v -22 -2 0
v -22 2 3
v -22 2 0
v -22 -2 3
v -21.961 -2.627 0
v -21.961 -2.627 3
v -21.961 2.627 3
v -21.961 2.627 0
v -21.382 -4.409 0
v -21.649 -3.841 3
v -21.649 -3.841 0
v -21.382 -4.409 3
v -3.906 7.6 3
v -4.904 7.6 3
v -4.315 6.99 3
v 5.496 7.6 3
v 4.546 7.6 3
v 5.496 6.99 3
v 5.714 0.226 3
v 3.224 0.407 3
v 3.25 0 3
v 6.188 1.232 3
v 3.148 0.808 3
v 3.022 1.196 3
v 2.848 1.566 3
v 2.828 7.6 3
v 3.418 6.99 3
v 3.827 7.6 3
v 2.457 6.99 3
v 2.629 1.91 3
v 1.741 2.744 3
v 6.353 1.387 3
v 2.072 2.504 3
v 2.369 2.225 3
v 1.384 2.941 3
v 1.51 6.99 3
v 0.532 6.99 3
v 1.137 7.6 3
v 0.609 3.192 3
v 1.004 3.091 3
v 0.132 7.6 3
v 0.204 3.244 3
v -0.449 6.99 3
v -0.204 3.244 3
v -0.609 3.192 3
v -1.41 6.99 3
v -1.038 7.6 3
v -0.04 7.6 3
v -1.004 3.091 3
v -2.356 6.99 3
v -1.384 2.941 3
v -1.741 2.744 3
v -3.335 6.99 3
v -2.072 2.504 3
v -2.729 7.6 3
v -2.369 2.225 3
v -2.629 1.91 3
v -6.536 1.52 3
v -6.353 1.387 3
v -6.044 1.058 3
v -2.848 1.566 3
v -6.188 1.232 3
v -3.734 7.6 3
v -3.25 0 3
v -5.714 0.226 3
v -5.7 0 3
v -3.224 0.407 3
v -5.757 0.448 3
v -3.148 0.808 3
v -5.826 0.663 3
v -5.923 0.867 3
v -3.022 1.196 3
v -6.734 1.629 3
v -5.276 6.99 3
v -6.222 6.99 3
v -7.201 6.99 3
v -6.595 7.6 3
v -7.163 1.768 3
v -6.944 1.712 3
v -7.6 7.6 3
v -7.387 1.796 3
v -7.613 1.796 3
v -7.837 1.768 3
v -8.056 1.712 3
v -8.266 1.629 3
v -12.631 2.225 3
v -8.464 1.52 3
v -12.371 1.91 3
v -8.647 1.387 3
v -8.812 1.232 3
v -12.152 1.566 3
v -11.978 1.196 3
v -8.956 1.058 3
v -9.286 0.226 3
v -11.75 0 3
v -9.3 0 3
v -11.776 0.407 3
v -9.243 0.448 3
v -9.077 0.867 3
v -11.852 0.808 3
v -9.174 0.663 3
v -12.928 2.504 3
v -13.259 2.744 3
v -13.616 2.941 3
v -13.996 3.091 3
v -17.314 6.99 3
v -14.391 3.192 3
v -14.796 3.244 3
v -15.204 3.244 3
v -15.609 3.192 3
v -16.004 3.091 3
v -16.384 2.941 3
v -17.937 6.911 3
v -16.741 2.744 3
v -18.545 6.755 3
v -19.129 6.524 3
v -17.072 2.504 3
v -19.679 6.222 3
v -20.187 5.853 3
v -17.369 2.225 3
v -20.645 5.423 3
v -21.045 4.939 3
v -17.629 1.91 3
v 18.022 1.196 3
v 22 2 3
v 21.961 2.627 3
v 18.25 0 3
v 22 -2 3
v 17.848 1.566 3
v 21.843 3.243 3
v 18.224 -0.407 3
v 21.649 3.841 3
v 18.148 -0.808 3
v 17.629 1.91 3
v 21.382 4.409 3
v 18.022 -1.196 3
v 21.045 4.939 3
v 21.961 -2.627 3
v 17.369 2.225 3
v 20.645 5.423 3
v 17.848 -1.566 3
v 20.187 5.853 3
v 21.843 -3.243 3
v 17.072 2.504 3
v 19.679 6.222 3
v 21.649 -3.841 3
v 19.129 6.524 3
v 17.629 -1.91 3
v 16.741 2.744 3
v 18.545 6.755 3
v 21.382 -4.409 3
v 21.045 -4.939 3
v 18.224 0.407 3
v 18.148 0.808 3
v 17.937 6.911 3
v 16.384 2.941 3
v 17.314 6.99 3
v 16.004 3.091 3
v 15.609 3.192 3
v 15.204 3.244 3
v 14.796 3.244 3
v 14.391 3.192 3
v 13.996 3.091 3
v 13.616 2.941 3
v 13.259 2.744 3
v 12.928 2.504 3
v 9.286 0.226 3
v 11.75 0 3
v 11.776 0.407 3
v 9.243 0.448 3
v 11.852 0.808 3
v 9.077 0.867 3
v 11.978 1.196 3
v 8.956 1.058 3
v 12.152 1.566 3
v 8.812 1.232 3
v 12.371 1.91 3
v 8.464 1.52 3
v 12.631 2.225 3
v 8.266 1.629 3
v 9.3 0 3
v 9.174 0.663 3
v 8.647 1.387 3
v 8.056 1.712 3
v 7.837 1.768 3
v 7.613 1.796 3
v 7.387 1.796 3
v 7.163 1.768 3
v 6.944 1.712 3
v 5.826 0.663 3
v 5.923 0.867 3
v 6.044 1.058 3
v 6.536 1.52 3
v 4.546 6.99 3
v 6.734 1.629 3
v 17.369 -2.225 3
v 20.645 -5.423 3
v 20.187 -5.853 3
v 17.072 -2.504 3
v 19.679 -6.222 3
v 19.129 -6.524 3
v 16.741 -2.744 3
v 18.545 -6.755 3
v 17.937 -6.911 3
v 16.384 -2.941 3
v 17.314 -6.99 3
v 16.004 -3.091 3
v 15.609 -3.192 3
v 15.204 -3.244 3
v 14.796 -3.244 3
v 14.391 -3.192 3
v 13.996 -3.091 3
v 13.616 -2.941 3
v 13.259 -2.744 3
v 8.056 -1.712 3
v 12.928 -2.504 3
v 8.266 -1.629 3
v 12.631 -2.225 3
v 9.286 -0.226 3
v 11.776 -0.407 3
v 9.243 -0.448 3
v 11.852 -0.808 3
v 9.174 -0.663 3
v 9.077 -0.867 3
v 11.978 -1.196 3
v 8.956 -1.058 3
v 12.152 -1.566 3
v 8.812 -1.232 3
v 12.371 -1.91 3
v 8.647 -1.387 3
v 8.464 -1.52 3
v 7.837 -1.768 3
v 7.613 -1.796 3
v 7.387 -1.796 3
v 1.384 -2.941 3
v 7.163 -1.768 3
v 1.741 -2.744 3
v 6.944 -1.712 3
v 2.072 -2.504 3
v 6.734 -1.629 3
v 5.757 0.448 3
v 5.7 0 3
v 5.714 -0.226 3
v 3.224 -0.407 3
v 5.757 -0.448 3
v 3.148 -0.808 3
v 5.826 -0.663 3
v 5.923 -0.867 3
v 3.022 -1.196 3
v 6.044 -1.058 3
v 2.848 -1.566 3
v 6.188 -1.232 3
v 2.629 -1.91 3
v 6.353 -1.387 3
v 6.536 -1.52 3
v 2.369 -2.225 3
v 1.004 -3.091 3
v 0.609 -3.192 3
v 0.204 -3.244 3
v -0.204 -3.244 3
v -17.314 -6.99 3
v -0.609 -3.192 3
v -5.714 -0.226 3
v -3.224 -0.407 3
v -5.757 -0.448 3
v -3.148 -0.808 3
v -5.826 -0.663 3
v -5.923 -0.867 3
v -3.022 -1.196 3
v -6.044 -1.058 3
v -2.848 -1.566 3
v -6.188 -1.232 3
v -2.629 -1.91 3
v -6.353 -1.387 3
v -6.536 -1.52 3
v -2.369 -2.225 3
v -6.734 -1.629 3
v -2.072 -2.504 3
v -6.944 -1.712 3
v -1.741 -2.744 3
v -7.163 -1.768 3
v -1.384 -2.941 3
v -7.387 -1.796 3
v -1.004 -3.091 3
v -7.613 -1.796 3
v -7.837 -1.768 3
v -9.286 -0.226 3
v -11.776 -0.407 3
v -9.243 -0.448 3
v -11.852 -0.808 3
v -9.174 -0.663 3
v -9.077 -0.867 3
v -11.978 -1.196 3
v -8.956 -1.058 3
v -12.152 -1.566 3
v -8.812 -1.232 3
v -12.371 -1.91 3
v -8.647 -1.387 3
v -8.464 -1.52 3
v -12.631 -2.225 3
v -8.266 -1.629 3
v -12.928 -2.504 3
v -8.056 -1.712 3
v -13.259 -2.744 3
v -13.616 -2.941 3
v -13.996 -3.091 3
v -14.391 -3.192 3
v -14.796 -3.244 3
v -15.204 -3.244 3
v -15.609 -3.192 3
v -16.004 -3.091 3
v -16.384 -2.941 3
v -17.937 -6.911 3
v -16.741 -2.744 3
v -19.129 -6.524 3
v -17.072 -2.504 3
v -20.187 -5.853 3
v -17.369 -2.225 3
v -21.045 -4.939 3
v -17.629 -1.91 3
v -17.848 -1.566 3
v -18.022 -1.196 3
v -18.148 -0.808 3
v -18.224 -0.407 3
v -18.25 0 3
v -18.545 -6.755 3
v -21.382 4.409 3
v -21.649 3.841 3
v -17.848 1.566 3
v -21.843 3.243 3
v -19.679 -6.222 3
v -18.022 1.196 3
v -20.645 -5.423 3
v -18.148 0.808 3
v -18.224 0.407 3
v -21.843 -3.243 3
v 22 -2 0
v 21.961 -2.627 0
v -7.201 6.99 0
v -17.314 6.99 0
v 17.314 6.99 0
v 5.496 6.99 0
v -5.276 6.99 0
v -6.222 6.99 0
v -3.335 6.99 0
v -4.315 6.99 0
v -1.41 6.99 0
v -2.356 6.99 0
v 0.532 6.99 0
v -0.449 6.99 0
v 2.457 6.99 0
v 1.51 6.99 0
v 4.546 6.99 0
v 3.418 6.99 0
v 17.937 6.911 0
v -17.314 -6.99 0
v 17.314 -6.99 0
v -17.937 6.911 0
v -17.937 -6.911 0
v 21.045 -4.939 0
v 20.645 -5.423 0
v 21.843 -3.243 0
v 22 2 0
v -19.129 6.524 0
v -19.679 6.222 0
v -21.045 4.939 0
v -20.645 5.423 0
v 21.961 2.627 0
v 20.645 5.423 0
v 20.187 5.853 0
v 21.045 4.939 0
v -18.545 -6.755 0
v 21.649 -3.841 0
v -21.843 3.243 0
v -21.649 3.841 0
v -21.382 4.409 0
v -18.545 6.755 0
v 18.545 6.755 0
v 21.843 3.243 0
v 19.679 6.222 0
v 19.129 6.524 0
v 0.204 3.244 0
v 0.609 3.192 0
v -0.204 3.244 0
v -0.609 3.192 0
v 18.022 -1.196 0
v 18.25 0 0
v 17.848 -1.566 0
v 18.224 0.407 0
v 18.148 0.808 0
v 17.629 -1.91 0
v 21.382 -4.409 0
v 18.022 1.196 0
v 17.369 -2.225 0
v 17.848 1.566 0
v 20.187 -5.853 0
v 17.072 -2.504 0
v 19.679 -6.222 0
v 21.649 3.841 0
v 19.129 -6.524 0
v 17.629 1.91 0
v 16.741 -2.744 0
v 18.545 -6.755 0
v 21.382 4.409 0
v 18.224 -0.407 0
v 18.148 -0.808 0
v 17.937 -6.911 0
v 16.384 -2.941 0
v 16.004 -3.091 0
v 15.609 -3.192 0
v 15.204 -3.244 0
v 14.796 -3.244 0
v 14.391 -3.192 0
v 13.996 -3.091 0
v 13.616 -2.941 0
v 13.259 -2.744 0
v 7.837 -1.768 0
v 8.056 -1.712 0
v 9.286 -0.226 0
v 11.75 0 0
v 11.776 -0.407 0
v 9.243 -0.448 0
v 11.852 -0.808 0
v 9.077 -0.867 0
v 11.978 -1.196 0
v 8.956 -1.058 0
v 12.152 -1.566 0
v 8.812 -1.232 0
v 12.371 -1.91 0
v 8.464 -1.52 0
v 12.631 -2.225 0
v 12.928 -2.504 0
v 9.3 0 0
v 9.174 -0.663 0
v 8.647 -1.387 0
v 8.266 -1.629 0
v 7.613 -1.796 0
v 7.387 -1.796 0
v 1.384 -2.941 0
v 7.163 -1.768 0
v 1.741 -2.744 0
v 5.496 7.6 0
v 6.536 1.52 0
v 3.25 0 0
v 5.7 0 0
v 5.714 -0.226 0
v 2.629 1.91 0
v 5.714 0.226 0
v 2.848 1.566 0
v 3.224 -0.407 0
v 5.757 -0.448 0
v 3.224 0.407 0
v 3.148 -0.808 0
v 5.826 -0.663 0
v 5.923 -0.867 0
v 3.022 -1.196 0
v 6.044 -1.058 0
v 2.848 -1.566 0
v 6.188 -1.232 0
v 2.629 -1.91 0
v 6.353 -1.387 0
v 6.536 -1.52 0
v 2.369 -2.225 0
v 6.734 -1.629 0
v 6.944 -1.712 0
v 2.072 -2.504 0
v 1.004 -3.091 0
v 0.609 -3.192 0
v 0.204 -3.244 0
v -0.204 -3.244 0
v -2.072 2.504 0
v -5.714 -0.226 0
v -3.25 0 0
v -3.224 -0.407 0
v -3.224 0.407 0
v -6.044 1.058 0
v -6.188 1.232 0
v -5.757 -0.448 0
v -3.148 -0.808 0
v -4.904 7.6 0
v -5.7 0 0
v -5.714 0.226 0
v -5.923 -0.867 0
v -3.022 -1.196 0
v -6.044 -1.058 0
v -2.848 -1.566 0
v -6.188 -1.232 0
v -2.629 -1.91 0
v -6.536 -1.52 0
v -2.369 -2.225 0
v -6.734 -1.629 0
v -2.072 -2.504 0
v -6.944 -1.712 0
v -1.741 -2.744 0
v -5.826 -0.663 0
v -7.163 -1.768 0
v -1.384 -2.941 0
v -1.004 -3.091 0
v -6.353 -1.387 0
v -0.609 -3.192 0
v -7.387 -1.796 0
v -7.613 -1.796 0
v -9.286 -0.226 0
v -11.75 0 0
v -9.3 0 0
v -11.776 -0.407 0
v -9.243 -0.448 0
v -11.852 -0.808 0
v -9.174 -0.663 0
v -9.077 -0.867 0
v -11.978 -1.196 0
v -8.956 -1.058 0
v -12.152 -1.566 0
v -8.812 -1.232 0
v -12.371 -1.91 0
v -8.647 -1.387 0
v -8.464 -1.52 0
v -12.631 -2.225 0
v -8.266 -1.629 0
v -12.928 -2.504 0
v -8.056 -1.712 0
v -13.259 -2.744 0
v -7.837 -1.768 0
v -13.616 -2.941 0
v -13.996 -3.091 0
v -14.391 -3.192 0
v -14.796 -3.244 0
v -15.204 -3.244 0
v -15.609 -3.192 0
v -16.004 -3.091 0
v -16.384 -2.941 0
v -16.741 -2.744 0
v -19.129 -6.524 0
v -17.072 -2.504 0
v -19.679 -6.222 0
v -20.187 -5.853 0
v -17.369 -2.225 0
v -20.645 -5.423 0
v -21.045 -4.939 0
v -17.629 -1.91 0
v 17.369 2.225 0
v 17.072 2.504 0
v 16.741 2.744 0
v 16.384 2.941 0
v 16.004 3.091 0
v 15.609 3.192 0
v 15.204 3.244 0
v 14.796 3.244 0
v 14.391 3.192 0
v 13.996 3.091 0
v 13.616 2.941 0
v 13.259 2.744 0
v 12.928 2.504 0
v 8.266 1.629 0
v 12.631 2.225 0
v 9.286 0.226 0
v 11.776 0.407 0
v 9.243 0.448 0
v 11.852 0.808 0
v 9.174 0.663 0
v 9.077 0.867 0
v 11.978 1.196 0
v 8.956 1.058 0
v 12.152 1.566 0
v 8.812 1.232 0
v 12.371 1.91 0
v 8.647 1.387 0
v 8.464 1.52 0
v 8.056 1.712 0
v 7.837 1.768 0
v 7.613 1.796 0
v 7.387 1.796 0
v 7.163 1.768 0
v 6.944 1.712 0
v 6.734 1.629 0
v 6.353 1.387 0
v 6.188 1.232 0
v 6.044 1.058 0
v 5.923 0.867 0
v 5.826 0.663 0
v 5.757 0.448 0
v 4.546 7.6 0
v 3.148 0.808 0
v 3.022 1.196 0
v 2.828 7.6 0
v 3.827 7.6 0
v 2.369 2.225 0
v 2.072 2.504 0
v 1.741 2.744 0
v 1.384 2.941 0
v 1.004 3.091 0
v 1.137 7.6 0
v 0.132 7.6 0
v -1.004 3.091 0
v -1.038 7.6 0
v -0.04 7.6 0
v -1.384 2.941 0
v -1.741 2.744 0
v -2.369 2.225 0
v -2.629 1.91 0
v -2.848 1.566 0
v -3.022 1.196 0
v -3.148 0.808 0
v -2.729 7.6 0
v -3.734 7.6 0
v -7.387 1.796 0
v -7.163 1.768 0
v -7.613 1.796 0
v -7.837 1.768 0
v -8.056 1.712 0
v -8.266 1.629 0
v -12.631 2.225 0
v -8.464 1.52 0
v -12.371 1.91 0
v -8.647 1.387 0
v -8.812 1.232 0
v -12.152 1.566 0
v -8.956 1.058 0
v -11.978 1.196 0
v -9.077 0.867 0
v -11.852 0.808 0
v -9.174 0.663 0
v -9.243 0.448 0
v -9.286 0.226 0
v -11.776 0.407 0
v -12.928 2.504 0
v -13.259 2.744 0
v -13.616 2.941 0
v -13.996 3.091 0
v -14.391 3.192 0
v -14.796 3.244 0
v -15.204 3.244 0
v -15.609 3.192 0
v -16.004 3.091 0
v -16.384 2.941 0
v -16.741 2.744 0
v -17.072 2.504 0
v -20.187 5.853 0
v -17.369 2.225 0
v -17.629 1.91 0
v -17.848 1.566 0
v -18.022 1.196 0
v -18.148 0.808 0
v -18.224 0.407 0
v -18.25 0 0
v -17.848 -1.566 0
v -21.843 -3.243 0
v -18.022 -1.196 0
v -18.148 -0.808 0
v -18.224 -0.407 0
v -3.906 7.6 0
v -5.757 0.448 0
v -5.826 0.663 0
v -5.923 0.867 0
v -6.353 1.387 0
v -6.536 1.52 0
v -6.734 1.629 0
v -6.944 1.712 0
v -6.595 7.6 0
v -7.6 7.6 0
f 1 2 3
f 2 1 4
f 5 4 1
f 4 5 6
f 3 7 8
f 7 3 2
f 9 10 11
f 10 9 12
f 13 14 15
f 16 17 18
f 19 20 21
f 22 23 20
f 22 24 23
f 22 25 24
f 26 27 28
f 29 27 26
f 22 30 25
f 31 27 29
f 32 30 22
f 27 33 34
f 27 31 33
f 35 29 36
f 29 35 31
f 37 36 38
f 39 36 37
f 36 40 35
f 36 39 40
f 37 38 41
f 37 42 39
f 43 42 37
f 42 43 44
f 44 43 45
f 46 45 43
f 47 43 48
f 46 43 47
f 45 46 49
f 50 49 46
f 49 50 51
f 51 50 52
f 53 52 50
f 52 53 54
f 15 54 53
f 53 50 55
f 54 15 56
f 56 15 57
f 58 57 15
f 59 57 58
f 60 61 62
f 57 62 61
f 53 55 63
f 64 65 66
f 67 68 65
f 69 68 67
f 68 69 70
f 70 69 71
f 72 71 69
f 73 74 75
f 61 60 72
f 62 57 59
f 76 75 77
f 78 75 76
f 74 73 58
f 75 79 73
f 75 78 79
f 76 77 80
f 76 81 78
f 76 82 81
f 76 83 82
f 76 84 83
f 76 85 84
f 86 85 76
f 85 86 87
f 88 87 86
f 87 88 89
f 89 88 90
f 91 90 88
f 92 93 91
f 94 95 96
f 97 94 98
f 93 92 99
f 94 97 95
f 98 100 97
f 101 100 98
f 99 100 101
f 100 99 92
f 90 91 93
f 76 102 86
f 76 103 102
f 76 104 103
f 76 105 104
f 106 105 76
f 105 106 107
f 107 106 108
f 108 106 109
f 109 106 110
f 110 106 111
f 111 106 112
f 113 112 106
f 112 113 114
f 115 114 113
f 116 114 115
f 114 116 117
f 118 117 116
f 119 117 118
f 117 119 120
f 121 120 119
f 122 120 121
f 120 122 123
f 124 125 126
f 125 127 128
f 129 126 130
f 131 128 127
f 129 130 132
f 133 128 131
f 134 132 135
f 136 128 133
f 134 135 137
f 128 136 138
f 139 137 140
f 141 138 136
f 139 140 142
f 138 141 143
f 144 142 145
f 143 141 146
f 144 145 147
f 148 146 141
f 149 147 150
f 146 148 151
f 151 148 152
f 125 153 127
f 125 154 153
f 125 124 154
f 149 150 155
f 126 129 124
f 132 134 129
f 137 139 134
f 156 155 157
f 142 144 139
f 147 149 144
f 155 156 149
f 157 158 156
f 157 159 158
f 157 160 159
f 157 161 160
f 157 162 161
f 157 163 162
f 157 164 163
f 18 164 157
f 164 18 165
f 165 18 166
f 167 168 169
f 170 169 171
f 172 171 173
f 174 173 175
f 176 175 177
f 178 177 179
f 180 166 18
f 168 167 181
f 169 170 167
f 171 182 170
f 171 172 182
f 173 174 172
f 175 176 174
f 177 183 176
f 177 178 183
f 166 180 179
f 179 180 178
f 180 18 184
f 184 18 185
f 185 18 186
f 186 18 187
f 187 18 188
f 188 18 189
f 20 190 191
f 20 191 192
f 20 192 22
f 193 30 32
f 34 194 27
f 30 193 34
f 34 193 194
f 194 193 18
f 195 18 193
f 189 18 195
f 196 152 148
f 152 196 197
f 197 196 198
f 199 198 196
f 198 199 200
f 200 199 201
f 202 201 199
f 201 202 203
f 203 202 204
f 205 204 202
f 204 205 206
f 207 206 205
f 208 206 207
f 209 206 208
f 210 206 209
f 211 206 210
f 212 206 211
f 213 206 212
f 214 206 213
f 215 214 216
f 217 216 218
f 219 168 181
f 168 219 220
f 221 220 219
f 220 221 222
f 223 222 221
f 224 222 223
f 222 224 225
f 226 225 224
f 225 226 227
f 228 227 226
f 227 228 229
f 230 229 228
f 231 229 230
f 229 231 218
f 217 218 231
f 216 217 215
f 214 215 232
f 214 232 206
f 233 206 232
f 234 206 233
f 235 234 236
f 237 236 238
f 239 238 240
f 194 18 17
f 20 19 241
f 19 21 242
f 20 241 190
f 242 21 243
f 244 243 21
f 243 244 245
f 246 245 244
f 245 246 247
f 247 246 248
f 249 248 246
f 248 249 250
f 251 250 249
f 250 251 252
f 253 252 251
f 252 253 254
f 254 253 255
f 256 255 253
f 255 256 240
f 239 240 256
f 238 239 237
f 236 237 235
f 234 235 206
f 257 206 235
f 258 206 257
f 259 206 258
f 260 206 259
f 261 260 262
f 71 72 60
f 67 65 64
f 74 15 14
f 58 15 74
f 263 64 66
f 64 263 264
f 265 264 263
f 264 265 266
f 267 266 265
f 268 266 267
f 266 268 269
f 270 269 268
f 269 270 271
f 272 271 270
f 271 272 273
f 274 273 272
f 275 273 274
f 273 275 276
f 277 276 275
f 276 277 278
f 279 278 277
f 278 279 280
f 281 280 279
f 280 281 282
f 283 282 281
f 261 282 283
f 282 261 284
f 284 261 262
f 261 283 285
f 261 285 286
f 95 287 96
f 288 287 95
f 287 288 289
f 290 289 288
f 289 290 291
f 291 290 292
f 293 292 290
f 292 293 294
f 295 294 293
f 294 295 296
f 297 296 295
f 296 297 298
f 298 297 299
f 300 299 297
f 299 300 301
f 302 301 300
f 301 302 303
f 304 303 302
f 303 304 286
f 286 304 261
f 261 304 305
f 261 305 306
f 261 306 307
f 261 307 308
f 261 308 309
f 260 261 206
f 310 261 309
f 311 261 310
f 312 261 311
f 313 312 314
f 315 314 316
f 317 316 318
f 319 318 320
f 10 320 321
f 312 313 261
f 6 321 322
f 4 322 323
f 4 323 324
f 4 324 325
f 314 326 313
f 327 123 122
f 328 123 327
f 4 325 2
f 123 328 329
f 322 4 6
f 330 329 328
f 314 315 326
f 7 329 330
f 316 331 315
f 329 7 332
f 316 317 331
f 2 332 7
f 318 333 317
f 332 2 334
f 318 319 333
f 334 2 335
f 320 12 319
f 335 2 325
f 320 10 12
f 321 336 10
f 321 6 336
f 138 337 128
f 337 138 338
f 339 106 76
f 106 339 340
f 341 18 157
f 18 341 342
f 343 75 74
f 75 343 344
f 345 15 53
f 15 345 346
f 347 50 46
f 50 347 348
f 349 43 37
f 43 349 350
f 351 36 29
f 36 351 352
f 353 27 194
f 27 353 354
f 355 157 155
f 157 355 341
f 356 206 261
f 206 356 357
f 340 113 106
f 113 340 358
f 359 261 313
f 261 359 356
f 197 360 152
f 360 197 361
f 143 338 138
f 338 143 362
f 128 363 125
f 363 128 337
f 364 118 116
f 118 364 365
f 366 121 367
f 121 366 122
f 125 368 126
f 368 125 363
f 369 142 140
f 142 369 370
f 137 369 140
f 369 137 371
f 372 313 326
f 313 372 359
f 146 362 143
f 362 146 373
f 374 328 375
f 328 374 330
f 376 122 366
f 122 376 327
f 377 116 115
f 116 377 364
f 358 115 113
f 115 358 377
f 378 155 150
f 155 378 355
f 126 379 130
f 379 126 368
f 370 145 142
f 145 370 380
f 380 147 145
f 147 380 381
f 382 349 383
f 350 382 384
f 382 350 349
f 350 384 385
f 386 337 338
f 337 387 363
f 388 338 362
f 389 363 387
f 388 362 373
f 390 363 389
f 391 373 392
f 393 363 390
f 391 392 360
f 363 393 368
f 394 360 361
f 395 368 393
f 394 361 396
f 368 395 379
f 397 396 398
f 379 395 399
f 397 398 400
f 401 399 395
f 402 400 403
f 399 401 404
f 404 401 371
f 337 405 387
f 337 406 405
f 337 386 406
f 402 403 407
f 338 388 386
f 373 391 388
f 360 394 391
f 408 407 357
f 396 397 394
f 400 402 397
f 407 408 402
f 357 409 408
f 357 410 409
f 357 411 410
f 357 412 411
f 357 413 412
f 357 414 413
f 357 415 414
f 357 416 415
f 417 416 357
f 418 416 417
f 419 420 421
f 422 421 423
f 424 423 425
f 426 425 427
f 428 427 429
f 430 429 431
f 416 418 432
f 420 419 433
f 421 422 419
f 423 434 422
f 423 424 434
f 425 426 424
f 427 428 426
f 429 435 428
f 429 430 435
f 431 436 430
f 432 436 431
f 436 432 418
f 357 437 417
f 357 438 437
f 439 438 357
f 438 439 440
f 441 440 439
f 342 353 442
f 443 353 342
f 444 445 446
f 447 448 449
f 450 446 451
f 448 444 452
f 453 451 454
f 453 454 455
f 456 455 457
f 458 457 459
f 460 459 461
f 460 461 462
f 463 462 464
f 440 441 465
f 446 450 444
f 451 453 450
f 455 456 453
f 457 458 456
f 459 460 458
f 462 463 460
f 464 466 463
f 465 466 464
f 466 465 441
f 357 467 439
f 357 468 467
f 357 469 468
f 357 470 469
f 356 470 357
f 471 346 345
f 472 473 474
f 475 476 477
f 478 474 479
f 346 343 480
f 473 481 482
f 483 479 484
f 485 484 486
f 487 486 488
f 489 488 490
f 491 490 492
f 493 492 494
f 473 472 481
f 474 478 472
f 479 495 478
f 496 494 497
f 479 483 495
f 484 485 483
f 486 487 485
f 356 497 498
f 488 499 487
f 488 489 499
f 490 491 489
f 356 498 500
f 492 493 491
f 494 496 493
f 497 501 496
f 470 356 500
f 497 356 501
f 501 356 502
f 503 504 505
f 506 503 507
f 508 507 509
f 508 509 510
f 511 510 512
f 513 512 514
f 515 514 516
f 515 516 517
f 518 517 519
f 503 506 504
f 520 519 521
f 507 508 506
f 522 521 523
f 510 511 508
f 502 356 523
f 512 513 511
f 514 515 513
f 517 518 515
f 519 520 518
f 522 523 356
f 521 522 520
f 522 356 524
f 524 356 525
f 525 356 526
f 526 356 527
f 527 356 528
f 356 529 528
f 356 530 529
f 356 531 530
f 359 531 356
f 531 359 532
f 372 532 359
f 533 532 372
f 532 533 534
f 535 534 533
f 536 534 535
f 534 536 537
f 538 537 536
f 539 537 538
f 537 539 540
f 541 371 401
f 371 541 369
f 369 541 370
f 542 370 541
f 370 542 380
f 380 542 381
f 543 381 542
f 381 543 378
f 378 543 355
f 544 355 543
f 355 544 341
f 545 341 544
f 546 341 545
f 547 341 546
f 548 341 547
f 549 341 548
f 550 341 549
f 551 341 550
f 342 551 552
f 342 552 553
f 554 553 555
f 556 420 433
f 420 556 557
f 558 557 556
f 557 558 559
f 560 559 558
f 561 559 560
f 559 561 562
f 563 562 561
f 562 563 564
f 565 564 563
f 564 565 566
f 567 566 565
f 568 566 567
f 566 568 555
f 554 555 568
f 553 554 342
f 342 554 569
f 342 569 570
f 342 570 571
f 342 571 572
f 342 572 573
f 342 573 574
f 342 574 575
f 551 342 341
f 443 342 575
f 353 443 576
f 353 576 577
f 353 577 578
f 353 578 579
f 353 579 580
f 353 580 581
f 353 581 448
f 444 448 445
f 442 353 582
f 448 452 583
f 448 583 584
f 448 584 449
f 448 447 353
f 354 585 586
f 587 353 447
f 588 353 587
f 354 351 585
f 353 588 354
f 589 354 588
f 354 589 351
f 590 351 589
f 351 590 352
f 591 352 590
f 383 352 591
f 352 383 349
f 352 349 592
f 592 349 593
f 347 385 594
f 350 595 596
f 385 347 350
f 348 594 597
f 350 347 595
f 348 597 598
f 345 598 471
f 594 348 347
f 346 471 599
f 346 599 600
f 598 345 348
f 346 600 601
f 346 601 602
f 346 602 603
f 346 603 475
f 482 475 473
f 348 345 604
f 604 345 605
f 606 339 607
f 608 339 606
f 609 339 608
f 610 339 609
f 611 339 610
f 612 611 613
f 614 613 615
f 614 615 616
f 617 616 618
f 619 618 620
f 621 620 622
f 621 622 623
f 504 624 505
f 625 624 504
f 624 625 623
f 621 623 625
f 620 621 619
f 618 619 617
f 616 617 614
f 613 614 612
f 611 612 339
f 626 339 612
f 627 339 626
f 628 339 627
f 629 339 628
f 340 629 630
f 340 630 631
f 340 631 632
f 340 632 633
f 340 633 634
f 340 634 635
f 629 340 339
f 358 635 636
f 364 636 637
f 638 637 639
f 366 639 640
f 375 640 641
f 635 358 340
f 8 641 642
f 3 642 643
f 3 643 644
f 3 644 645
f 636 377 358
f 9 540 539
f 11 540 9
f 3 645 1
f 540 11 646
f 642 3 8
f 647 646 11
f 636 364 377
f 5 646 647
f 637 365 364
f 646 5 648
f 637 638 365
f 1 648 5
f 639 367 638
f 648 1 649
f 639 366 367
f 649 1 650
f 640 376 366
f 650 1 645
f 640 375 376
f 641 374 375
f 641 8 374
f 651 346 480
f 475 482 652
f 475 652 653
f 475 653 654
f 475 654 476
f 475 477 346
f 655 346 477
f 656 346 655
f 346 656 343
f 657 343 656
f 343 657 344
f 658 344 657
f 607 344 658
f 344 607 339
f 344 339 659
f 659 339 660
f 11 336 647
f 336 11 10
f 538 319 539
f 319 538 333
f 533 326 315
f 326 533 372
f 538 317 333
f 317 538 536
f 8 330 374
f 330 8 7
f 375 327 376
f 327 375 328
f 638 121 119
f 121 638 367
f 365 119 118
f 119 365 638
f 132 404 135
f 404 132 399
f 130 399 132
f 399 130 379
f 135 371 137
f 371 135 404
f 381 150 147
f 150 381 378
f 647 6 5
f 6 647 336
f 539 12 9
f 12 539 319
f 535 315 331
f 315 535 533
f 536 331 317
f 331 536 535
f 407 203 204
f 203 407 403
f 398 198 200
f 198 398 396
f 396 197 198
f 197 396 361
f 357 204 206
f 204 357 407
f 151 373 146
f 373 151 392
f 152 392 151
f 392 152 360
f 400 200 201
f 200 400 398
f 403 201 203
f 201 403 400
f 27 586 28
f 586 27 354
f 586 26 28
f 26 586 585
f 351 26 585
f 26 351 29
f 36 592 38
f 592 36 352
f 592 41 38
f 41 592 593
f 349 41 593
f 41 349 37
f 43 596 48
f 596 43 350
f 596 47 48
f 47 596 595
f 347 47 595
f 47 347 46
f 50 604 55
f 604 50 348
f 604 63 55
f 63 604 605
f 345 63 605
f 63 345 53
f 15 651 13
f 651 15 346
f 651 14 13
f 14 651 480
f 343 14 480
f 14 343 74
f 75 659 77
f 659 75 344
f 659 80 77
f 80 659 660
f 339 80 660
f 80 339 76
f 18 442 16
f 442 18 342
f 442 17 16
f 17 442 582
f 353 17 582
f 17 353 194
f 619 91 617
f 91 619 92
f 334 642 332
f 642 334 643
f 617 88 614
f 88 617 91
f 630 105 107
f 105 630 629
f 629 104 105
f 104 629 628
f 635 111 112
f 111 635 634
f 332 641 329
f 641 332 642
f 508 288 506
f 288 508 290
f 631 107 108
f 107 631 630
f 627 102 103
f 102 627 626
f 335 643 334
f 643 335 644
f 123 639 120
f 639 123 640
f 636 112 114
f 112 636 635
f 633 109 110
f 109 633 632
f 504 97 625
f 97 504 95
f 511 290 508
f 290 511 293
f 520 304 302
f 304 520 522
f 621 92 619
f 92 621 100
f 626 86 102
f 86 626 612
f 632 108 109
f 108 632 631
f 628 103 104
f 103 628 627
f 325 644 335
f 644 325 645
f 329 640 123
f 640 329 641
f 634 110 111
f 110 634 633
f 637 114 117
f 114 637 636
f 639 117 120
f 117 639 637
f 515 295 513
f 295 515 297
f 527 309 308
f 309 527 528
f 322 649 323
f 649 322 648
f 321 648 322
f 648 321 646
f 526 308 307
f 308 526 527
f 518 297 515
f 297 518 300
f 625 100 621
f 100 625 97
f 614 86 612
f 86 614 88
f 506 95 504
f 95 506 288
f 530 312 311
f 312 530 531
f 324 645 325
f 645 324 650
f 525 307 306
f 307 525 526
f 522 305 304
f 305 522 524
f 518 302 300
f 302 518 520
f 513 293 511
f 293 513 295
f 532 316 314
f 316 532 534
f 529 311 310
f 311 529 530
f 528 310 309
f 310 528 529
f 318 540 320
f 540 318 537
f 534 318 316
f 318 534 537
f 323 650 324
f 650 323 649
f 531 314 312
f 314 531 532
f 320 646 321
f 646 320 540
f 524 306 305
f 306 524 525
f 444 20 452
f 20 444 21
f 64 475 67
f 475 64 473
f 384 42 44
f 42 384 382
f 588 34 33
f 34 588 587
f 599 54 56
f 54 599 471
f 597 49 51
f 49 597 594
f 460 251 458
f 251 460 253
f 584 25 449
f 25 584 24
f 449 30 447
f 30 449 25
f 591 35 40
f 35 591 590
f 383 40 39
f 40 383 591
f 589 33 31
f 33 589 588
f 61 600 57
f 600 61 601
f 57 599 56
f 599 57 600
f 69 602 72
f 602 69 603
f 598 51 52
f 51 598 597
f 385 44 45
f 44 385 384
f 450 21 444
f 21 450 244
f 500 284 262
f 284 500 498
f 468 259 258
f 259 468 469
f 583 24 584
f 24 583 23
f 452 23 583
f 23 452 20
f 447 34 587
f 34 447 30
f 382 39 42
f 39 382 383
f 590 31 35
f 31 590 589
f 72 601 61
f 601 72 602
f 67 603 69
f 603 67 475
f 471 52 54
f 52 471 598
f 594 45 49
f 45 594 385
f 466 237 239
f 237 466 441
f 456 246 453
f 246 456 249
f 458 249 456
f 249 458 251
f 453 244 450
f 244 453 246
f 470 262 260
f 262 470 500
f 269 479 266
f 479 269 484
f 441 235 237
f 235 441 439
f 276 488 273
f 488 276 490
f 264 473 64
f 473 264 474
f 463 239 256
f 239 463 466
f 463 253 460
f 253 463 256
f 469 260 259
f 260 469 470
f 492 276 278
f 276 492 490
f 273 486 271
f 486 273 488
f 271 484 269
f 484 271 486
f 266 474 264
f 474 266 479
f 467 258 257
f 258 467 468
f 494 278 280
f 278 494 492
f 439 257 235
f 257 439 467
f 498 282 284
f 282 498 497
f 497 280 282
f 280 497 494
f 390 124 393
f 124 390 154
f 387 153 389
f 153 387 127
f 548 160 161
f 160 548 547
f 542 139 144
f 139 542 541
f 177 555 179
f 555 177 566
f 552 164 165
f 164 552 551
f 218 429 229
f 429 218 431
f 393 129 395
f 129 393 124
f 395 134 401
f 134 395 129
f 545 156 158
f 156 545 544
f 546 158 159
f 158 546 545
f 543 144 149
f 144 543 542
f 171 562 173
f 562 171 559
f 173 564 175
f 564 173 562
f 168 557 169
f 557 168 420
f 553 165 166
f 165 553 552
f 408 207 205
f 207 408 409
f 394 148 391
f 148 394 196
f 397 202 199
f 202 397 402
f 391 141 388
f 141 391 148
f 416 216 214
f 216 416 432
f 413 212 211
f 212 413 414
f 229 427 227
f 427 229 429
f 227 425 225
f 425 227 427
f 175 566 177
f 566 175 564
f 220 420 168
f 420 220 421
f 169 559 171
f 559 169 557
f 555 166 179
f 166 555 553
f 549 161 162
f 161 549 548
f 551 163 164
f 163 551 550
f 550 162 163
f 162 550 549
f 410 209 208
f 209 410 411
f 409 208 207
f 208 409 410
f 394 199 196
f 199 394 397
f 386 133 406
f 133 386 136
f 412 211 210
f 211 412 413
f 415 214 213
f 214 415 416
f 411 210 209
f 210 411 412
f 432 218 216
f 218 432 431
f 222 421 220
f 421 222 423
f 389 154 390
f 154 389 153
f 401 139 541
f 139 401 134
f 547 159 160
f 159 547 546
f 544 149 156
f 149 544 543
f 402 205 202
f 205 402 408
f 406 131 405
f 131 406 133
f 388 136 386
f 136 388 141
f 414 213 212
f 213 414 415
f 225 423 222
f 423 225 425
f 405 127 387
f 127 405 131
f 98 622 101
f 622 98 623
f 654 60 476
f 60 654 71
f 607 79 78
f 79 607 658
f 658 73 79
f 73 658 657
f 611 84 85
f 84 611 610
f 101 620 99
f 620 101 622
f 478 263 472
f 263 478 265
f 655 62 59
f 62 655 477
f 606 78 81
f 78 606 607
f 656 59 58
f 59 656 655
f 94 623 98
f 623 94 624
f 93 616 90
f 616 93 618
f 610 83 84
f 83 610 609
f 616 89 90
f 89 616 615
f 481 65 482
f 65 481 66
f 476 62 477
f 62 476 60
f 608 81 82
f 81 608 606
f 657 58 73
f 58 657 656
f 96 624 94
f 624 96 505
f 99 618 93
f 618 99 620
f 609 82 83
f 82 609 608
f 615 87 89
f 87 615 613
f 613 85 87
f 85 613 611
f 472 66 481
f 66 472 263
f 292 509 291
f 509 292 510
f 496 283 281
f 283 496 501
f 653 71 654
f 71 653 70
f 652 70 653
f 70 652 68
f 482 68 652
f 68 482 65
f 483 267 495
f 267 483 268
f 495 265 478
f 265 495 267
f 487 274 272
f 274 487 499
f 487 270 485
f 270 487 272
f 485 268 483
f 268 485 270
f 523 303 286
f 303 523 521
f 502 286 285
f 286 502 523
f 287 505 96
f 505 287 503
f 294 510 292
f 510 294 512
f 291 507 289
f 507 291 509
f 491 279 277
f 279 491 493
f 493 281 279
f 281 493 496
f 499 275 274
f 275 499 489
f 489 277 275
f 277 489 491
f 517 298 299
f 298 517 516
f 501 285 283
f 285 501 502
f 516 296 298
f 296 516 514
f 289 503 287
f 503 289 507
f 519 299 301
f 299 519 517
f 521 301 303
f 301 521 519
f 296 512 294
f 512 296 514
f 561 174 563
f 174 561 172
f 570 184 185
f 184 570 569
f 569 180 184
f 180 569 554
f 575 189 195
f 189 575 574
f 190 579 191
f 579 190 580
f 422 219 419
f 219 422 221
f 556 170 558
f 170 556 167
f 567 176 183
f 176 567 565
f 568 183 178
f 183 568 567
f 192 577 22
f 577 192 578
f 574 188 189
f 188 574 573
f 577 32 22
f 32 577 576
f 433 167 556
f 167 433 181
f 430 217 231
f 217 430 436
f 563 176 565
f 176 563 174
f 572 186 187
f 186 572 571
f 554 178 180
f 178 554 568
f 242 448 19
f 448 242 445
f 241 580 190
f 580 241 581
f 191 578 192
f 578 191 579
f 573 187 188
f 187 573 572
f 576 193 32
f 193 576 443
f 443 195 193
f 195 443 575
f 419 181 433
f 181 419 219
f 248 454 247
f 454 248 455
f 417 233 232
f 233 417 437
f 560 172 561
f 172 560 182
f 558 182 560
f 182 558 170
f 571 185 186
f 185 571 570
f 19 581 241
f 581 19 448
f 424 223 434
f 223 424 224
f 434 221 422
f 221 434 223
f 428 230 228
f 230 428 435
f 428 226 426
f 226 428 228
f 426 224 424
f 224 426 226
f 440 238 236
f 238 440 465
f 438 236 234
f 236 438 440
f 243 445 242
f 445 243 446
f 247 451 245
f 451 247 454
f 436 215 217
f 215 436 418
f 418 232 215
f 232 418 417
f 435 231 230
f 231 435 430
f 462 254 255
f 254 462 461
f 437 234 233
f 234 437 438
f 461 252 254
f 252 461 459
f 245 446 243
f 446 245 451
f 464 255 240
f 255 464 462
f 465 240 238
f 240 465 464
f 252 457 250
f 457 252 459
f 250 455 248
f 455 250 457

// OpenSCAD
$fn = 50;


difference() {
	union() {
		hull() {
			translate(v = [-17.0000000000, 2.0000000000, 0]) {
				cylinder(h = 3, r = 5);
			}
			translate(v = [17.0000000000, 2.0000000000, 0]) {
				cylinder(h = 3, r = 5);
			}
			translate(v = [-17.0000000000, -2.0000000000, 0]) {
				cylinder(h = 3, r = 5);
			}
			translate(v = [17.0000000000, -2.0000000000, 0]) {
				cylinder(h = 3, r = 5);
			}
		}
		translate(v = [0, 7.5000000000, 0]) {
			linear_extrude(height = 3) {
				text(font = "DejaVu Sans Mono:style=Bold", halign = "center", size = 4.7500000000, text = "XXXL", valign = "top");
			}
		}
	}
	union() {
		translate(v = [-15.0000000000, 0.0000000000, 0]) {
			translate(v = [0, 0, -100]) {
				cylinder(h = 200, r = 3.2500000000);
			}
		}
		translate(v = [0, 0, -100]) {
			cylinder(h = 200, r = 3.2500000000);
		}
		translate(v = [15.0000000000, 0.0000000000, 0]) {
			translate(v = [0, 0, -100]) {
				cylinder(h = 200, r = 3.2500000000);
			}
		}
		translate(v = [-15.0000000000, 0.0000000000, 0]) {
			translate(v = [0, 0, -100]) {
				cylinder(h = 200, r = 1.8000000000);
			}
		}
		translate(v = [-7.5000000000, 0.0000000000, 0]) {
			translate(v = [0, 0, -100]) {
				cylinder(h = 200, r = 1.8000000000);
			}
		}
		translate(v = [0, 0, -100]) {
			cylinder(h = 200, r = 1.8000000000);
		}
		translate(v = [7.5000000000, 0.0000000000, 0]) {
			translate(v = [0, 0, -100]) {
				cylinder(h = 200, r = 1.8000000000);
			}
		}
		translate(v = [15.0000000000, 0.0000000000, 0]) {
			translate(v = [0, 0, -100]) {
				cylinder(h = 200, r = 1.8000000000);
			}
		}
	}
}
